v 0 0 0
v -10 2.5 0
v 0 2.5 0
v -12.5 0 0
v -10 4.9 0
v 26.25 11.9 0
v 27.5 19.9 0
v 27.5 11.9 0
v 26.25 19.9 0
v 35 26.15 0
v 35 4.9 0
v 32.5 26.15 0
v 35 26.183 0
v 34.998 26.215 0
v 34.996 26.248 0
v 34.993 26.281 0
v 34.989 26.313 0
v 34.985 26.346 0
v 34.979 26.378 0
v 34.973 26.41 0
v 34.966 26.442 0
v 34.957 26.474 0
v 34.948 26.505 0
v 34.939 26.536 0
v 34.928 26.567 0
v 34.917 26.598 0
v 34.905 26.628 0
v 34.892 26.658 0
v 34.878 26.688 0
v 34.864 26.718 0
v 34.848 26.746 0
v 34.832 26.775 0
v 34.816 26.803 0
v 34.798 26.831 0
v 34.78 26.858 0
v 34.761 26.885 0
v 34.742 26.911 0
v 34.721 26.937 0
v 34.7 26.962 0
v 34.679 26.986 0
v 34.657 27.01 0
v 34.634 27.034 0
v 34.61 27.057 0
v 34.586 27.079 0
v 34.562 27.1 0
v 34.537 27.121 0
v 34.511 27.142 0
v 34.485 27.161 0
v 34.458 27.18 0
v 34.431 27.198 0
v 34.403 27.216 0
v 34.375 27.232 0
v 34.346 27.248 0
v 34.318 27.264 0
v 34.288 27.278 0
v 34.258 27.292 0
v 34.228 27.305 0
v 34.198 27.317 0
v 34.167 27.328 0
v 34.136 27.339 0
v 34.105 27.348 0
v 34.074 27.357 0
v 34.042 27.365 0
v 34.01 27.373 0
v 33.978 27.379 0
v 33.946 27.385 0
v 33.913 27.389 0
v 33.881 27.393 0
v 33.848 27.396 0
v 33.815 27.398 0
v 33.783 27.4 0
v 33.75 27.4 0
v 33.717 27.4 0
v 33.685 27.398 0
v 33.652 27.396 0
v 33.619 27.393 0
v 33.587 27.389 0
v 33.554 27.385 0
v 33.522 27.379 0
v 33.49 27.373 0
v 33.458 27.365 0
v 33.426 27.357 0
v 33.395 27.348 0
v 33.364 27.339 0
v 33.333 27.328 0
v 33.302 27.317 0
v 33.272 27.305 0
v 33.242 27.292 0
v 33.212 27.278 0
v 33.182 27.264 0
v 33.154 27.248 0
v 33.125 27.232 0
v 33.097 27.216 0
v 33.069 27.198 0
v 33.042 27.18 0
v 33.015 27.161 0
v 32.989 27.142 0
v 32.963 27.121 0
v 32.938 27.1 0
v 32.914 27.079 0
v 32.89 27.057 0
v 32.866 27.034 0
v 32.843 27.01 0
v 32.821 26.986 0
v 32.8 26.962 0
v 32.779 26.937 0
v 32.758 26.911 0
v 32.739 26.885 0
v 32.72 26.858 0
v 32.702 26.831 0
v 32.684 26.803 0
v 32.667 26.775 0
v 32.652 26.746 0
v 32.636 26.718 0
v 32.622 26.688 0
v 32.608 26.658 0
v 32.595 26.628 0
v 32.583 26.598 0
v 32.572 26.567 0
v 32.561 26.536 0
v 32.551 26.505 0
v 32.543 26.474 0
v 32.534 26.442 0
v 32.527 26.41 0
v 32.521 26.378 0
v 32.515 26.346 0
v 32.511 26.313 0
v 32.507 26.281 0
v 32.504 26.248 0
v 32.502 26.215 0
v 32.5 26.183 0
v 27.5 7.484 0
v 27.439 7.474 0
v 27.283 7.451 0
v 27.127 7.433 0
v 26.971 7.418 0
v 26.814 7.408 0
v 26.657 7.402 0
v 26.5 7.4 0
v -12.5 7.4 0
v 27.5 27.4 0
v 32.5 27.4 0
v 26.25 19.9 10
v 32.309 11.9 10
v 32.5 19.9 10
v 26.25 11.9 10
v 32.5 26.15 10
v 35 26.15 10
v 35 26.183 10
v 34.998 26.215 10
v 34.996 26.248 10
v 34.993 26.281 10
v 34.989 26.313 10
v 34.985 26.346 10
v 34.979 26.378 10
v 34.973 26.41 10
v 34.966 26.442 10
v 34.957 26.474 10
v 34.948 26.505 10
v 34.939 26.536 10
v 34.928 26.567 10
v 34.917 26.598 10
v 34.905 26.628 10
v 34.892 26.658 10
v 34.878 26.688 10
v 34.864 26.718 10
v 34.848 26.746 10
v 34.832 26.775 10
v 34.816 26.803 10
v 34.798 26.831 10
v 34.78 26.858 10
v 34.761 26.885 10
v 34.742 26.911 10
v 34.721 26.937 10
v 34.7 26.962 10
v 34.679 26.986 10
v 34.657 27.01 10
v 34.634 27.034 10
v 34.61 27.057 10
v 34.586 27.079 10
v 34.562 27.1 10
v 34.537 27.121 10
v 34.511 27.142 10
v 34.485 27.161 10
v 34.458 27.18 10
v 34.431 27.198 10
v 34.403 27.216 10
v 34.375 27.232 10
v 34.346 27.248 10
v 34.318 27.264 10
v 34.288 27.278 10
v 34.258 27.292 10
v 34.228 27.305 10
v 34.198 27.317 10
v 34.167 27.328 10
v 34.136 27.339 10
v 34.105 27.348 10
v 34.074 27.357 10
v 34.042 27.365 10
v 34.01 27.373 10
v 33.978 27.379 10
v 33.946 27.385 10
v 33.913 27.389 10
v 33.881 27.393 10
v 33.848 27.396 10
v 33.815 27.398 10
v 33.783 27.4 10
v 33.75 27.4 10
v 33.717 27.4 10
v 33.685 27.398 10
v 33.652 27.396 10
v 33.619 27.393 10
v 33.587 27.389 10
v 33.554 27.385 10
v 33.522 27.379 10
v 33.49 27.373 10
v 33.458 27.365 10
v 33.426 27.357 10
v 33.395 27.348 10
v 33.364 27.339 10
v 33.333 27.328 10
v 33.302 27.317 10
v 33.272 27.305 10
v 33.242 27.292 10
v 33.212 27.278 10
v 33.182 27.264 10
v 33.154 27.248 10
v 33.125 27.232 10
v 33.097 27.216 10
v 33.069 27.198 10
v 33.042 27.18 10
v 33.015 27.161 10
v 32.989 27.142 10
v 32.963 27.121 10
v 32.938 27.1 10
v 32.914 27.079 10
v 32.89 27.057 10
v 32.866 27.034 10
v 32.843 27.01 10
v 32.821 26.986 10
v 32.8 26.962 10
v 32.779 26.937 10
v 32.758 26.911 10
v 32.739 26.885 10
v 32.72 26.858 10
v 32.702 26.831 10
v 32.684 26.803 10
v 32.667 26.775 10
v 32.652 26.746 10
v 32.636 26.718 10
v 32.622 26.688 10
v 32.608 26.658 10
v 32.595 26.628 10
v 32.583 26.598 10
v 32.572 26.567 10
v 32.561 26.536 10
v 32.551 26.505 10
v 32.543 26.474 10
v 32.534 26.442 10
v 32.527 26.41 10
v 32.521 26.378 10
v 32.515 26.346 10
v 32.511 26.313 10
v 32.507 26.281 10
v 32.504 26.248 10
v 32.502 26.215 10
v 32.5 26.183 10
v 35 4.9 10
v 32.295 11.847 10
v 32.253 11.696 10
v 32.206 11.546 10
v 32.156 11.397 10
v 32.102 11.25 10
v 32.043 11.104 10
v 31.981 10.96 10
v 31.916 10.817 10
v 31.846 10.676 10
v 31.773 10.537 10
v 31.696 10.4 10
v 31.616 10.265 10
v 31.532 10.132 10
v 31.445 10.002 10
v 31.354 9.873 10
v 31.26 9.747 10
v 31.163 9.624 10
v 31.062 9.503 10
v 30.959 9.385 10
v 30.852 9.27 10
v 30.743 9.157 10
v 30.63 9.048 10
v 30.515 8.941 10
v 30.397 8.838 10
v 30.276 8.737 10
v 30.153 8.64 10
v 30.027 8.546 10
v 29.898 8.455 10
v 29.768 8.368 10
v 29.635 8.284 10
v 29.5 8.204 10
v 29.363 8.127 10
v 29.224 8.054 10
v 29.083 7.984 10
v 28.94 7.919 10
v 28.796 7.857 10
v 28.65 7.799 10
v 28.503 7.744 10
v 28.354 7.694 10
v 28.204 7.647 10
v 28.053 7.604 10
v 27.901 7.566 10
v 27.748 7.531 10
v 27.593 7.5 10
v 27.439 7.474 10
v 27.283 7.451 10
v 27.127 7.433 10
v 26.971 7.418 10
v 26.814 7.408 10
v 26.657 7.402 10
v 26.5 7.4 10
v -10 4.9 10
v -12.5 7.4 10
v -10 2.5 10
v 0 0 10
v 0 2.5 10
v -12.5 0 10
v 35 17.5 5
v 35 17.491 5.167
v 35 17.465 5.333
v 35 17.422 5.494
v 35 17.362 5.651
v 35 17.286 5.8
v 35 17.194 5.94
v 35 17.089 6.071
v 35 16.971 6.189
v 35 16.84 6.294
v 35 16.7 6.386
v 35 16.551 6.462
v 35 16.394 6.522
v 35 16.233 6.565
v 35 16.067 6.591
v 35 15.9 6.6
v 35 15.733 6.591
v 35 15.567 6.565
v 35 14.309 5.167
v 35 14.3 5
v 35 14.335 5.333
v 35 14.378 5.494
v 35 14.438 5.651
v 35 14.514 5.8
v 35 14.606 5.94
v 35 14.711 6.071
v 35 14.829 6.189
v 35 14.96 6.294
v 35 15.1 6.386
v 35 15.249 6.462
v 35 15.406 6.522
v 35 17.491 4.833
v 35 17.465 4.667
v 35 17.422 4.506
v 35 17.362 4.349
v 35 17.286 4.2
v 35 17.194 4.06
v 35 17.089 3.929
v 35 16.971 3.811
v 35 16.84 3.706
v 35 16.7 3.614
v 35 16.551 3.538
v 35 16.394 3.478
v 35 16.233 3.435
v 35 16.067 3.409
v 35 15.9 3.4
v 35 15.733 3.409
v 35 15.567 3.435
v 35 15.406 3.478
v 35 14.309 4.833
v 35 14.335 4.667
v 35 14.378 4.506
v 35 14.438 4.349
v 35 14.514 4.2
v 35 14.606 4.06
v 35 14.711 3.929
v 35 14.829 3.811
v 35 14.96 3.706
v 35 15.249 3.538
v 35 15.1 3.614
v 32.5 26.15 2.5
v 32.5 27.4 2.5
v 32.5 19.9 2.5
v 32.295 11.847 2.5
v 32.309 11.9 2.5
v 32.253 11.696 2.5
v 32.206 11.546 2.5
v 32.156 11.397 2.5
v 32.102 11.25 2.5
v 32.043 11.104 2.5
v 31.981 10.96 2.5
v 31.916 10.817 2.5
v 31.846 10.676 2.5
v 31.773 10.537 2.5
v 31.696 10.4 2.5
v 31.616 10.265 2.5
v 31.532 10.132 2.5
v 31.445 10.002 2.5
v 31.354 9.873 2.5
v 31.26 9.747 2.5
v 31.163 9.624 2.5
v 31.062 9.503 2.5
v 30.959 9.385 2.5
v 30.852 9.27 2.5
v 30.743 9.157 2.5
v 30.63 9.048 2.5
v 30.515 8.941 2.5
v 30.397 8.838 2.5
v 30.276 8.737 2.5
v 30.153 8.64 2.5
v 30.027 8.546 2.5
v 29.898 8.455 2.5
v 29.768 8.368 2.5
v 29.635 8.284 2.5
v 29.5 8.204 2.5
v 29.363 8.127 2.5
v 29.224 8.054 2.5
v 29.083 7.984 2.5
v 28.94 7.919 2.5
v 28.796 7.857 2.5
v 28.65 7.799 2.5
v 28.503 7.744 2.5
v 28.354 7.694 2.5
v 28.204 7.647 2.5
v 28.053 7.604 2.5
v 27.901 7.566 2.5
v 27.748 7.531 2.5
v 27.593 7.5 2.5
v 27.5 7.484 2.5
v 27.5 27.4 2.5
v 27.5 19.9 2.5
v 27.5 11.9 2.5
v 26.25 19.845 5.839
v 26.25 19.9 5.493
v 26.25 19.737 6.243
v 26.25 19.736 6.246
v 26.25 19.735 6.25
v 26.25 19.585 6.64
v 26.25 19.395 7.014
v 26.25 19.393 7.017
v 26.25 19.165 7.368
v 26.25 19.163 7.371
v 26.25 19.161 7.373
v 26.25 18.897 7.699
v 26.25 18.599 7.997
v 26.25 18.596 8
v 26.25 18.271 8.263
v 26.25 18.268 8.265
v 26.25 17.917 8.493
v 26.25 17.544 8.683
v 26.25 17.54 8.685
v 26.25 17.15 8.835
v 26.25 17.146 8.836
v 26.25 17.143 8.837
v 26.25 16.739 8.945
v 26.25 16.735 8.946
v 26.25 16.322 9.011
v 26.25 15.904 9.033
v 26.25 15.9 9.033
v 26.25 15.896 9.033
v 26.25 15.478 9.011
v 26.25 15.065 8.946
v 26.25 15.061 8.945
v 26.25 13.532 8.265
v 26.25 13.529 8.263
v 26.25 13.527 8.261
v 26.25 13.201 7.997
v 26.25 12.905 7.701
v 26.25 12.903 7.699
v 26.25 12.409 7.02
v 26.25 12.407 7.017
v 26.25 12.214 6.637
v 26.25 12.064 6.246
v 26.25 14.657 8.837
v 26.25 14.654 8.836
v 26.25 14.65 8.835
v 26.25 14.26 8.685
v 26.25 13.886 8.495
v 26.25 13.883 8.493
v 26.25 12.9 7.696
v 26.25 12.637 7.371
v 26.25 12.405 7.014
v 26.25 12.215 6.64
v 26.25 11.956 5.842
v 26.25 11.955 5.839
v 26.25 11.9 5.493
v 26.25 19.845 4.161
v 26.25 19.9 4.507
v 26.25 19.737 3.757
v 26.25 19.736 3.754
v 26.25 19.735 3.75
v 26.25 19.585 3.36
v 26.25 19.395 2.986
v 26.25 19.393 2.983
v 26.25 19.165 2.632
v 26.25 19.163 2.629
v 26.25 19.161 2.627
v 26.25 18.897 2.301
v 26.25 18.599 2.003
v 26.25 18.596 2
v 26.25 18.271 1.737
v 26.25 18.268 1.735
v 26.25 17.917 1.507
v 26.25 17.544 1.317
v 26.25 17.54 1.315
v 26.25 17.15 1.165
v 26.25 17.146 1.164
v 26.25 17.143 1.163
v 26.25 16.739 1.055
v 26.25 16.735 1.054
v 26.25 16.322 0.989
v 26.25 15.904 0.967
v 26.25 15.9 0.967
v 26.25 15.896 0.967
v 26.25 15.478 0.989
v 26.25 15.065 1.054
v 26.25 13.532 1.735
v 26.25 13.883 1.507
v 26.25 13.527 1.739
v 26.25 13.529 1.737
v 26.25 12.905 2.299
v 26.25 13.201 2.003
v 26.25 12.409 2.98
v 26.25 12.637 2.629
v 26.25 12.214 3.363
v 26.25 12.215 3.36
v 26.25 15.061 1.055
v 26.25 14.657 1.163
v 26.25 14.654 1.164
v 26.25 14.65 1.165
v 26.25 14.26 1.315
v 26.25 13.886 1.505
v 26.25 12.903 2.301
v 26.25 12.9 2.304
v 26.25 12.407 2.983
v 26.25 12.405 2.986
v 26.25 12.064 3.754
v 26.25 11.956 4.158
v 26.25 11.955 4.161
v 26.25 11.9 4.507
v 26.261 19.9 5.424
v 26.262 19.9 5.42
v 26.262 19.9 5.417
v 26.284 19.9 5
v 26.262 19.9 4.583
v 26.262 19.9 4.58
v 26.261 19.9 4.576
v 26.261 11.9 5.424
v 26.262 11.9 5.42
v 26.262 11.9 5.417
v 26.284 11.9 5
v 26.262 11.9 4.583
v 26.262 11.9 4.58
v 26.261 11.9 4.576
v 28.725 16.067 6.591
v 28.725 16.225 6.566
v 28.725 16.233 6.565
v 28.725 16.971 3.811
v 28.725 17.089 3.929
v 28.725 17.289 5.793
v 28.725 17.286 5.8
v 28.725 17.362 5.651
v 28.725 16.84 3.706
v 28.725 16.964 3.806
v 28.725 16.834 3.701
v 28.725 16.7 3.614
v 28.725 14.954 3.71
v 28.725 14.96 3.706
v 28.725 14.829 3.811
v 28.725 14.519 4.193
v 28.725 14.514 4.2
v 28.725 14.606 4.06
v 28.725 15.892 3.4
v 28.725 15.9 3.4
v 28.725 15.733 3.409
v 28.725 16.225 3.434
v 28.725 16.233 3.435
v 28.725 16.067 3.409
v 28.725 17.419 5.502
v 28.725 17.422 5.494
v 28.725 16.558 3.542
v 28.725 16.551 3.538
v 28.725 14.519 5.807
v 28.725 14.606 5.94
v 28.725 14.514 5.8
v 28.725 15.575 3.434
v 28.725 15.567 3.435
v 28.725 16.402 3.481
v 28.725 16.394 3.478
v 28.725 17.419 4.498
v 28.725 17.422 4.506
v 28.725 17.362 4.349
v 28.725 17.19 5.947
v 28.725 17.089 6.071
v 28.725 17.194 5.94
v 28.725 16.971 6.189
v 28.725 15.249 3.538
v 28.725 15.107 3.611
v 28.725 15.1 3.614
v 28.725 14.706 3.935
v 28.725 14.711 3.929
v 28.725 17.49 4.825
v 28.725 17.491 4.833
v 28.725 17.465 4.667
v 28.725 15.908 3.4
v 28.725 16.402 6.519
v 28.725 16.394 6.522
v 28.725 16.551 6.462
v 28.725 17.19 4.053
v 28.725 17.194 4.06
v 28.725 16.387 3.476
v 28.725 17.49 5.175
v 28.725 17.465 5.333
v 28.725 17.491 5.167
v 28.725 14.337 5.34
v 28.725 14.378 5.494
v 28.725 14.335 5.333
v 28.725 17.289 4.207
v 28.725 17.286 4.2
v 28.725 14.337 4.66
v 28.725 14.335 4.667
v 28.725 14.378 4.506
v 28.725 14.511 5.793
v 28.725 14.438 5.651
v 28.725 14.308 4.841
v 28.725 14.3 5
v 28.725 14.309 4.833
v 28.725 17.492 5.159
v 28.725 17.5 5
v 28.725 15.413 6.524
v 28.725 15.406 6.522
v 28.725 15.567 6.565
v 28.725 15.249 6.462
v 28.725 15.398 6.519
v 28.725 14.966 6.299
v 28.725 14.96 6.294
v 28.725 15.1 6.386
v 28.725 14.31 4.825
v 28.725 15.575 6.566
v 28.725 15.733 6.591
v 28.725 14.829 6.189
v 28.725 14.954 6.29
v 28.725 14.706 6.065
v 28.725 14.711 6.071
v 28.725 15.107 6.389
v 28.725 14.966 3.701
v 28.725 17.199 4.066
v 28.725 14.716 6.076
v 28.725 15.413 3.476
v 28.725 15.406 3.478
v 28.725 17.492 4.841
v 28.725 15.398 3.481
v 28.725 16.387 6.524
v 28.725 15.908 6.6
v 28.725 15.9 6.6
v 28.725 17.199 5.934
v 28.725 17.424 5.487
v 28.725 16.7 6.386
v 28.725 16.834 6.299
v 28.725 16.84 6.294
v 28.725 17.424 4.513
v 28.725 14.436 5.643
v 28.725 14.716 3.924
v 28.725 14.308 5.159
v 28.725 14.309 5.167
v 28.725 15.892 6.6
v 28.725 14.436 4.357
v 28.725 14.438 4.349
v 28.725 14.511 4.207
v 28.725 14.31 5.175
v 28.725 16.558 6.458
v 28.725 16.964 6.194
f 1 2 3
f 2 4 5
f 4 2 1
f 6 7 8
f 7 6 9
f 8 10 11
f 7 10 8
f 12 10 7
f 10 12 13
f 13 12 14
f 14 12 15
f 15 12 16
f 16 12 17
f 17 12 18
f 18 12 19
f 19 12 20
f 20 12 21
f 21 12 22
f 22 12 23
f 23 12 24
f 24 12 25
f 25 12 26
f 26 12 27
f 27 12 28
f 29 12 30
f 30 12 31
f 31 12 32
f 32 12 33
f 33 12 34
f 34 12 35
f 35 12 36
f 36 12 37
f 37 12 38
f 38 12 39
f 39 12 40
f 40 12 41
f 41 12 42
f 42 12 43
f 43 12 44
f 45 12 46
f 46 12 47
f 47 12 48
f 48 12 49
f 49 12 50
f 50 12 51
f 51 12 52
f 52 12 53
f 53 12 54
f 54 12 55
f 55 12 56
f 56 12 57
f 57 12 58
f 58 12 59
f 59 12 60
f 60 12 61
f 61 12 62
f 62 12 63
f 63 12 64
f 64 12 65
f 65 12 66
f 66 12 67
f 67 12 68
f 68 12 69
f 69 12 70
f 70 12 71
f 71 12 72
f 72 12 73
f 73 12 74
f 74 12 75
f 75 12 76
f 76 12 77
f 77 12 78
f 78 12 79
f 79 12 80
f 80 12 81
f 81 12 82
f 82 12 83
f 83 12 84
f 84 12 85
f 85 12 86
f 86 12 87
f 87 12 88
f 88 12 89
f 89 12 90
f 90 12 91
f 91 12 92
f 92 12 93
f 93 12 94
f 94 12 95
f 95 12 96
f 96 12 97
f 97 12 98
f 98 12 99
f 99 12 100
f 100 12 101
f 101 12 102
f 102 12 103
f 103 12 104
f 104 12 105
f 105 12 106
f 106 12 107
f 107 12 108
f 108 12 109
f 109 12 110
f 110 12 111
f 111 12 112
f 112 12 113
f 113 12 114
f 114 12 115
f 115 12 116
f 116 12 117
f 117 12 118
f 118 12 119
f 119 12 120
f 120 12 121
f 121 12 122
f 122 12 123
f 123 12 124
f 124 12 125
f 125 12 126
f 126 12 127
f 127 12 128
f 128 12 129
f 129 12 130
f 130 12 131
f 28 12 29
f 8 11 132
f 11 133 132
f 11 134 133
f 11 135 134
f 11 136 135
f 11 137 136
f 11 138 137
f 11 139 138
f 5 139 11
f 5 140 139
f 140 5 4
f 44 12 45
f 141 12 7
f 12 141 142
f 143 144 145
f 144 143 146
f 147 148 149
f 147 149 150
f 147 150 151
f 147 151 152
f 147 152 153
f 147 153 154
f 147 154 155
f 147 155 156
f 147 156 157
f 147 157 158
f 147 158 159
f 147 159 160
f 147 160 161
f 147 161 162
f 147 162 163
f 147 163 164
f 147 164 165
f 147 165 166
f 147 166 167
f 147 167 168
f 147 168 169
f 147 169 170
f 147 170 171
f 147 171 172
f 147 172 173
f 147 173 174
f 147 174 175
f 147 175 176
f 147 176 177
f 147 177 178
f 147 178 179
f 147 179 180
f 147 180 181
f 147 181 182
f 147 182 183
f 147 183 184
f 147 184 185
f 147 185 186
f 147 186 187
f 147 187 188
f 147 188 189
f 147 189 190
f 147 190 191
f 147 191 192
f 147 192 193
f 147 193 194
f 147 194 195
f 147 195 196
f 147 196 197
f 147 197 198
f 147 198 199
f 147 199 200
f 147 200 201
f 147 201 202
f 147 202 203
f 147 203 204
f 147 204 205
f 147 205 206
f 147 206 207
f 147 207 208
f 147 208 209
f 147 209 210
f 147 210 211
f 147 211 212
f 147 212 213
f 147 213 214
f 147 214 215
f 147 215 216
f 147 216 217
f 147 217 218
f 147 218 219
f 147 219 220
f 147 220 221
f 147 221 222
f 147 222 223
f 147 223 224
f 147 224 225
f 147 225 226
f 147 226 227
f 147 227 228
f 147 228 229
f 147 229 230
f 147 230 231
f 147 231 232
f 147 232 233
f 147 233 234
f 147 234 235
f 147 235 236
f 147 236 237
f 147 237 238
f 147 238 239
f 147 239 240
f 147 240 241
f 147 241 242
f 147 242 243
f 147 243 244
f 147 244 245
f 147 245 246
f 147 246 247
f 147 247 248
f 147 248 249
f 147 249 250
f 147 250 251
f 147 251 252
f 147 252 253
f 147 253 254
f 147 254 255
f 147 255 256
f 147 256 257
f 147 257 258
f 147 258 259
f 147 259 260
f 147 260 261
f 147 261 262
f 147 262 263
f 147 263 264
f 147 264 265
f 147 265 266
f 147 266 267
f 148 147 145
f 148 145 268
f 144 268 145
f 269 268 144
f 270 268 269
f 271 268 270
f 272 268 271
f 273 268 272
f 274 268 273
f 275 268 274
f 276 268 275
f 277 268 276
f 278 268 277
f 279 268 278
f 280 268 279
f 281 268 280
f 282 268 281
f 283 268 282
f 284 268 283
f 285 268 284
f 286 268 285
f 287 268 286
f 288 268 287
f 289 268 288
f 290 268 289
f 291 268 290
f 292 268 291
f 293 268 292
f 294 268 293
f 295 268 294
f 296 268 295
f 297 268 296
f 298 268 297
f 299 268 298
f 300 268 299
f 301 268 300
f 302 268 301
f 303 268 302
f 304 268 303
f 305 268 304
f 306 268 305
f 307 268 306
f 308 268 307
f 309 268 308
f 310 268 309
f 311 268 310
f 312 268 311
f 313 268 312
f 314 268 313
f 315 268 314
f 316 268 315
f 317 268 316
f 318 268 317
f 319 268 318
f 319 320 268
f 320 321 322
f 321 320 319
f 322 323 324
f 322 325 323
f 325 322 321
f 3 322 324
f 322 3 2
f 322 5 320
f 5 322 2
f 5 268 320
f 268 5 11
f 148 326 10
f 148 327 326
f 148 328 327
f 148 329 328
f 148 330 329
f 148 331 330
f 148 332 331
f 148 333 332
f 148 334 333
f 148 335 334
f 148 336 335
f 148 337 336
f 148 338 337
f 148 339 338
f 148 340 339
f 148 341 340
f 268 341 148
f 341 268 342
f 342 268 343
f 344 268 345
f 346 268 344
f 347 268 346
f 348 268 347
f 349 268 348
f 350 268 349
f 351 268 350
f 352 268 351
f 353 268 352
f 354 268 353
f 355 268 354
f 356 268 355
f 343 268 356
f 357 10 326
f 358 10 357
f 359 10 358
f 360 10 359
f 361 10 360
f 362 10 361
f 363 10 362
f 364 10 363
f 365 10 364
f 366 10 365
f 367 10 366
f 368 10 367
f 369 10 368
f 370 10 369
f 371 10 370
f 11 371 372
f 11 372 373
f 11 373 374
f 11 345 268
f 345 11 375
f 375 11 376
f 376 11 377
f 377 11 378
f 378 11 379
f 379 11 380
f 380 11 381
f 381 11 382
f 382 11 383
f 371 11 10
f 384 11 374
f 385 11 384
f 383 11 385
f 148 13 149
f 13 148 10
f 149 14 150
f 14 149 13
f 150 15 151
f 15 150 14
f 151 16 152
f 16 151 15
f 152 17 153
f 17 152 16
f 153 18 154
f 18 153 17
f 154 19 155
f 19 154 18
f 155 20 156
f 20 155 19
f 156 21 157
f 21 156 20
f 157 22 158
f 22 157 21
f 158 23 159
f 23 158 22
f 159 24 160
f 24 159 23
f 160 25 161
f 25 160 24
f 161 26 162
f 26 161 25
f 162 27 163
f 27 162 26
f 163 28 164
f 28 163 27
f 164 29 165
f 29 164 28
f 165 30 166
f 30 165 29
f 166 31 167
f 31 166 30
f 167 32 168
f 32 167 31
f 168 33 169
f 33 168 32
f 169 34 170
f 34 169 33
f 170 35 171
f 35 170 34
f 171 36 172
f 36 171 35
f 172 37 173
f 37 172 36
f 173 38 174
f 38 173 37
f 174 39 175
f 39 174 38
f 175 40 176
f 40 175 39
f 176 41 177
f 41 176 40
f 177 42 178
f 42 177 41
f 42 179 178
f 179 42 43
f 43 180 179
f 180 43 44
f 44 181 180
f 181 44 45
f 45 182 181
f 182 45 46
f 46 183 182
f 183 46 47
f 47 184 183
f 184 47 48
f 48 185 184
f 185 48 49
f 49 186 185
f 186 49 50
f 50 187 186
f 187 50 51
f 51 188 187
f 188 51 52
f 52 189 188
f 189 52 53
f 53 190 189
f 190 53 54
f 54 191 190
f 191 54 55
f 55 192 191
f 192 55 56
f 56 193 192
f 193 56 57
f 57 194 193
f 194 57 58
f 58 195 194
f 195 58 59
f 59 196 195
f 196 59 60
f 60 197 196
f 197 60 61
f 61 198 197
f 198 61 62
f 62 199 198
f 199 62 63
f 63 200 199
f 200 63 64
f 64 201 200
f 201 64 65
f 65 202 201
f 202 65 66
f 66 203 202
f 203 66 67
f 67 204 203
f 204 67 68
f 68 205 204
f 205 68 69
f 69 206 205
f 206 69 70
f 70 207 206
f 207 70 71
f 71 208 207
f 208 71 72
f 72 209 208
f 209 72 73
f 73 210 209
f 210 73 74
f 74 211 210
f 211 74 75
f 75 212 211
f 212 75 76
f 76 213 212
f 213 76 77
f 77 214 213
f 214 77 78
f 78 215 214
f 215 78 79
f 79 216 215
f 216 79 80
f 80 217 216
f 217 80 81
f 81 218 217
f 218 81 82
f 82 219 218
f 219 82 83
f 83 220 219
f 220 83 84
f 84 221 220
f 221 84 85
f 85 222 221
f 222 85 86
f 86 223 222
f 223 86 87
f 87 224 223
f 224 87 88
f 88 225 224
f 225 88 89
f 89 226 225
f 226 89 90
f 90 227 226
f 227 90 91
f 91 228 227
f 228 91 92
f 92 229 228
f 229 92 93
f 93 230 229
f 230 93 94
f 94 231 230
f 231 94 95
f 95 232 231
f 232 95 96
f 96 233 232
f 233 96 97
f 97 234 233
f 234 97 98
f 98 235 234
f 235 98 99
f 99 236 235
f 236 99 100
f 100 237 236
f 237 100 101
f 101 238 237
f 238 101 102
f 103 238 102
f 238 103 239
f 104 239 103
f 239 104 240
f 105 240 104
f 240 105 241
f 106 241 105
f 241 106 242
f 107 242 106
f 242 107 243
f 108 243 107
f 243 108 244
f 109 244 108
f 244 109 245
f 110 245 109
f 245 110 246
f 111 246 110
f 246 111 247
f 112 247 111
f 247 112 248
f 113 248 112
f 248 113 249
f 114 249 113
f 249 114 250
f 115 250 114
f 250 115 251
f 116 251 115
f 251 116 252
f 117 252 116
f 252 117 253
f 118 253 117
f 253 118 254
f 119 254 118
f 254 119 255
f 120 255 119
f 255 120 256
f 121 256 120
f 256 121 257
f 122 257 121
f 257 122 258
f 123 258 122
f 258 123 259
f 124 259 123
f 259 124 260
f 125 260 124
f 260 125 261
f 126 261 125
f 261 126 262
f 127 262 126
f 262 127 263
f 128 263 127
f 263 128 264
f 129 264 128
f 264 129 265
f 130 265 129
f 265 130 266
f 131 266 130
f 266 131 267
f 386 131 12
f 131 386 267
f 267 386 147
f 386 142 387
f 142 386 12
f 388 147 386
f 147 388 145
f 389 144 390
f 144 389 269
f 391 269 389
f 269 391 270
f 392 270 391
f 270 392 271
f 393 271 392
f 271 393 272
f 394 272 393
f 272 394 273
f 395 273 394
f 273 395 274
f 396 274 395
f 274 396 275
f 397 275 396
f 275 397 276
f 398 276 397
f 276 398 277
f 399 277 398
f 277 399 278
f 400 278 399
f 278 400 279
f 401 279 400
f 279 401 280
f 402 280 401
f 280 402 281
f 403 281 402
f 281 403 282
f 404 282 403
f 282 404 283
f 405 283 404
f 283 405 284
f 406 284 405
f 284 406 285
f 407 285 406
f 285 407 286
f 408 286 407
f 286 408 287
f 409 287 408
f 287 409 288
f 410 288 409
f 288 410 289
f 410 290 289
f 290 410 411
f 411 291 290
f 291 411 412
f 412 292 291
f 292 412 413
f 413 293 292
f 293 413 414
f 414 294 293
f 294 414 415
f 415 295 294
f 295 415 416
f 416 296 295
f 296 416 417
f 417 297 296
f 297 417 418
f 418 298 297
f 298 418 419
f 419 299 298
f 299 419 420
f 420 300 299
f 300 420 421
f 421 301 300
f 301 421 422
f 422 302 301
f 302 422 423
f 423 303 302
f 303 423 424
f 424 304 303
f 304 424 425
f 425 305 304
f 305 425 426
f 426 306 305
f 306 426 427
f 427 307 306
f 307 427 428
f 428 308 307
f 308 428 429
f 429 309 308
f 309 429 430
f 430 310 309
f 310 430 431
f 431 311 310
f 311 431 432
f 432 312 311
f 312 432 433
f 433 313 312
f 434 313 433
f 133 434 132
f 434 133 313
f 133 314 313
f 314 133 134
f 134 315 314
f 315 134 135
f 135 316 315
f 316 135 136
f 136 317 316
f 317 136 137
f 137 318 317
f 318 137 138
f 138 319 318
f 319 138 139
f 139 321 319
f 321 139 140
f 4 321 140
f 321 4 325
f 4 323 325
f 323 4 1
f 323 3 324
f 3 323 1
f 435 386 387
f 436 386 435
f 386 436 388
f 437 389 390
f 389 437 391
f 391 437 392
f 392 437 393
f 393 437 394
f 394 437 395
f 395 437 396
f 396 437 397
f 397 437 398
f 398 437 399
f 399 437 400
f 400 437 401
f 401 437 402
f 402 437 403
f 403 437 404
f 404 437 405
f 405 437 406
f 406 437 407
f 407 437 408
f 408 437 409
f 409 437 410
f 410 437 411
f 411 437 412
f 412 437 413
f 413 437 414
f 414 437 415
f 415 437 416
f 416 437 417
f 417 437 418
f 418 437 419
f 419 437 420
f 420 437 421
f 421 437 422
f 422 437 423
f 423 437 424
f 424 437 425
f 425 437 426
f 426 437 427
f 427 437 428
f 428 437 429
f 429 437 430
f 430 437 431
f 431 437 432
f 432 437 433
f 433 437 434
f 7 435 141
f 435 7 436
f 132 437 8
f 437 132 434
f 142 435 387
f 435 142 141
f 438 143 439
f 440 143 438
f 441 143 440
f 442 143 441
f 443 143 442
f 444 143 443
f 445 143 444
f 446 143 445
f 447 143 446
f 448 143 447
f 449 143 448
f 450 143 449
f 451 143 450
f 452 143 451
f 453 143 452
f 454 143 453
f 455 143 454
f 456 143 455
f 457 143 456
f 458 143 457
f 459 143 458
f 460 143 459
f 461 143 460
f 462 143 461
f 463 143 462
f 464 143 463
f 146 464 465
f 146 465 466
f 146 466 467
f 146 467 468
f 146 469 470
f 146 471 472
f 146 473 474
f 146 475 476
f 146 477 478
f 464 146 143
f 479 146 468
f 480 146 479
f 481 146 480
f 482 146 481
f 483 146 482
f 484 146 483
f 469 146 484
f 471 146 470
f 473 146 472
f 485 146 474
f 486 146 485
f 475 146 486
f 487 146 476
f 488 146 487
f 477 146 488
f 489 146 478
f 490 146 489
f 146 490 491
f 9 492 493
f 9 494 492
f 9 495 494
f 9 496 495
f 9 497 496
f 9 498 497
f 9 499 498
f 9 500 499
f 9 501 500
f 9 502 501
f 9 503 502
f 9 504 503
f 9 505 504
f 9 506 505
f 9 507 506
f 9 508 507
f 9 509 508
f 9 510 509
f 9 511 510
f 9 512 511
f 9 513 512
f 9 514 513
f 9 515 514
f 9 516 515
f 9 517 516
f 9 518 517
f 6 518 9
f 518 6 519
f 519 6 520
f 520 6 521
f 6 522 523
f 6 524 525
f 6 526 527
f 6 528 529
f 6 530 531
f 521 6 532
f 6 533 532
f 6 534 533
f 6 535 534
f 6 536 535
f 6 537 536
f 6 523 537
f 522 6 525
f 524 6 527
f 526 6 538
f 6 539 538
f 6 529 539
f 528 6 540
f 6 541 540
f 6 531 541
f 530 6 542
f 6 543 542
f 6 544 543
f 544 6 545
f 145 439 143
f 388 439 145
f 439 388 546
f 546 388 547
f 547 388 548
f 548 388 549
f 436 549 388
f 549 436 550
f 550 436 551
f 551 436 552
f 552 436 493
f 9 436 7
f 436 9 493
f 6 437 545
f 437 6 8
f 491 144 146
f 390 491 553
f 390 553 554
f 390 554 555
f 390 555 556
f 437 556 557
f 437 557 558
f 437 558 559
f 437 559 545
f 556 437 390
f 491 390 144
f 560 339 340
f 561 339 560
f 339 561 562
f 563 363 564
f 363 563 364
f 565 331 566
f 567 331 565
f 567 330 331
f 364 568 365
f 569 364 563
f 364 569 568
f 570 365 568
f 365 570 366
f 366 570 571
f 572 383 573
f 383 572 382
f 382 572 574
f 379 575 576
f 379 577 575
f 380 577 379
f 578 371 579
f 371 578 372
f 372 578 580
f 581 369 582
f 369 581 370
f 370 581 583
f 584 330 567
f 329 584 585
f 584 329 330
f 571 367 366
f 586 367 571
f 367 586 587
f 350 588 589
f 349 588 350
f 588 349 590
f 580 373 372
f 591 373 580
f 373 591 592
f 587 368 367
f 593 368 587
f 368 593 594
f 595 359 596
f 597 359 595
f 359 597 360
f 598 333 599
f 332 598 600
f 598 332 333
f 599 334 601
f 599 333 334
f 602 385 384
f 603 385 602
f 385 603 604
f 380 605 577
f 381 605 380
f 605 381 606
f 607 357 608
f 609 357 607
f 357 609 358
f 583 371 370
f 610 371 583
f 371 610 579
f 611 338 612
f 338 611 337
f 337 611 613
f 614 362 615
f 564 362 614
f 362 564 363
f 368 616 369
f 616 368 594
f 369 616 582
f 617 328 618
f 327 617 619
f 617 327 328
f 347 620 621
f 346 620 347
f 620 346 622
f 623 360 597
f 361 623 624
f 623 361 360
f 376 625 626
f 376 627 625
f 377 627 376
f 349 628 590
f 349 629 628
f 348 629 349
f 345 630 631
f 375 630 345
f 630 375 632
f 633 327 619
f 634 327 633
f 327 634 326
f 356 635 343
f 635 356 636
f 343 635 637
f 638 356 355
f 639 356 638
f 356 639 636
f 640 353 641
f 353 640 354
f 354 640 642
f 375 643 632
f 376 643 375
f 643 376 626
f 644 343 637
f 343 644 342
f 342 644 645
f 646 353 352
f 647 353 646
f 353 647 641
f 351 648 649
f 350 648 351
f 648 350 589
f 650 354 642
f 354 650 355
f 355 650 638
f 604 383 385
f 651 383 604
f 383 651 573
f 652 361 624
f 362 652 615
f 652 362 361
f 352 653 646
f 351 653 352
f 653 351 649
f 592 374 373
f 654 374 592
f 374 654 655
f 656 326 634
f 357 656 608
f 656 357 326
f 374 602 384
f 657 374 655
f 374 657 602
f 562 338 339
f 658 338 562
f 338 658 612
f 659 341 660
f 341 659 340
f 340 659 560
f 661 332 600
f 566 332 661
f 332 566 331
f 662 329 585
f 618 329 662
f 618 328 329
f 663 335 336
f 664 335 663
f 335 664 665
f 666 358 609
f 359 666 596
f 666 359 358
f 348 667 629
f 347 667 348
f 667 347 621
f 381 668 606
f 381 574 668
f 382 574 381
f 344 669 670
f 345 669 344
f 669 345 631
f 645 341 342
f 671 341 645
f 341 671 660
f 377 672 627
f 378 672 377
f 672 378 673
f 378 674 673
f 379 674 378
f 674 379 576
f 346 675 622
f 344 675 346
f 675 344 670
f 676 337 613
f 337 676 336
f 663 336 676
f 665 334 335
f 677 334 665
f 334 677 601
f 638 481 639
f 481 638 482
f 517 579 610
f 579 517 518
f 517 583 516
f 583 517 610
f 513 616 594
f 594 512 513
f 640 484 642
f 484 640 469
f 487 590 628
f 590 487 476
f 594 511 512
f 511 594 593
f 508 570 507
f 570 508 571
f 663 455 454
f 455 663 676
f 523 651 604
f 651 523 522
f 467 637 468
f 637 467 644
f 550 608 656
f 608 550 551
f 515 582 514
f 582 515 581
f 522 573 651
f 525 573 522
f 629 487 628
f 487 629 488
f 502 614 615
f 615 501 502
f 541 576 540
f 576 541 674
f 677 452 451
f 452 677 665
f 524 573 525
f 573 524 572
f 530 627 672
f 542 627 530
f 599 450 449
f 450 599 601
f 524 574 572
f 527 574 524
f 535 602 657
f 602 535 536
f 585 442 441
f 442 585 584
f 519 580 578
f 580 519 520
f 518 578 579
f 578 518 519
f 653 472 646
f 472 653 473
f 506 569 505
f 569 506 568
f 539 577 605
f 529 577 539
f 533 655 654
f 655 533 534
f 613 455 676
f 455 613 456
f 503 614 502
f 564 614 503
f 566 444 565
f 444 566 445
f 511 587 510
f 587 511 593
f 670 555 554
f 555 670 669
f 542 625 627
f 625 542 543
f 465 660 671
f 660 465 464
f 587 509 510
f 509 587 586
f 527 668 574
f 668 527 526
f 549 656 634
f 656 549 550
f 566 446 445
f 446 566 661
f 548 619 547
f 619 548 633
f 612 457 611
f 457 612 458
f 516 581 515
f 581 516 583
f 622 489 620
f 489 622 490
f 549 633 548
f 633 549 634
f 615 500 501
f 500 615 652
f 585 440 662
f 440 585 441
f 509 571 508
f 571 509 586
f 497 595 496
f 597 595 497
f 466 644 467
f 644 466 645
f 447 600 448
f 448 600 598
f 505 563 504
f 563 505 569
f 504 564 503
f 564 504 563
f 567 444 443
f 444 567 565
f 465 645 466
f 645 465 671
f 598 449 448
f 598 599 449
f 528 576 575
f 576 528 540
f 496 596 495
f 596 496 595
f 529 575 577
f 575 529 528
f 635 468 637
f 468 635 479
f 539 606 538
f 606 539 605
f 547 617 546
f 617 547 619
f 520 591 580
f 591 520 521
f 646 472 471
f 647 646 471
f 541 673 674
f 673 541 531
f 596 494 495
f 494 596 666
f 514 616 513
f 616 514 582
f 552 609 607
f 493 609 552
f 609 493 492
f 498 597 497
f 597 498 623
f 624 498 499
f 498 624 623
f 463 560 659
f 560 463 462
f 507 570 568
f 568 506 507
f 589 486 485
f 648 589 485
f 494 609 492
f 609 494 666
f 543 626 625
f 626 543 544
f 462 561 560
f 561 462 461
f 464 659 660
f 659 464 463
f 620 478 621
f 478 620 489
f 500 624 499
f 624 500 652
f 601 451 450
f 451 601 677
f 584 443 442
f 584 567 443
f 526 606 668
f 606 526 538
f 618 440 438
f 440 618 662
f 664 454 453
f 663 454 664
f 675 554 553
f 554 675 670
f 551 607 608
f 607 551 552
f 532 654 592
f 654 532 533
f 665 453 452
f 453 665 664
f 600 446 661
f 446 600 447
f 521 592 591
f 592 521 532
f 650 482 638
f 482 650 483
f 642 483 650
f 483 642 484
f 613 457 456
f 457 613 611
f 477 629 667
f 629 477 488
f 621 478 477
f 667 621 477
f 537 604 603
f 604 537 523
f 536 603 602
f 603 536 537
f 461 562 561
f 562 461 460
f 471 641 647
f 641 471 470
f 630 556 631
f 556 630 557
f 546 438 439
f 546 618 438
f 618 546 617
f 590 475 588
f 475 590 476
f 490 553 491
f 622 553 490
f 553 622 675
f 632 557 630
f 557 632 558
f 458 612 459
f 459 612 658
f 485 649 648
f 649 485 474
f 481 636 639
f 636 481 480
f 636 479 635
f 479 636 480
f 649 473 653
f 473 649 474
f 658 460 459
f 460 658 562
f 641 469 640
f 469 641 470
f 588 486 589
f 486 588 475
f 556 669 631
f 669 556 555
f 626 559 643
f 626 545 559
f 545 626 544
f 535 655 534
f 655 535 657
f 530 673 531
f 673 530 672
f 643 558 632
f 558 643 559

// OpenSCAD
include <Round-Anything/polyround.scad>

$fn=60;
MAIN_TN=2.5;
BRD_WD=90;
BRD_TN=2.4;
PYLON_HT=20;
CLAMP_LN=10;
FILLET=6;
LED_FOOT_WD=20;
FLAT_WD=10;

pylon_points = [
    [0,0,0],
    [-CLAMP_LN-MAIN_TN, 0,0],
    [-CLAMP_LN-MAIN_TN, BRD_TN+(2*MAIN_TN), 0],
    [(BRD_WD/2)-CLAMP_LN-MAIN_TN, BRD_TN+(2*MAIN_TN), FILLET],
    [(BRD_WD/2)-CLAMP_LN-MAIN_TN, BRD_TN+(2*MAIN_TN)+PYLON_HT, FILLET],
    // [(BRD_WD/2)-CLAMP_LN-MAIN_TN-(LED_FOOT_WD/2), BRD_TN+(2*MAIN_TN)+PYLON_HT,0],
    // [(BRD_WD/2)-CLAMP_LN-MAIN_TN-(LED_FOOT_WD/2), BRD_TN+(3*MAIN_TN)+PYLON_HT,0],
    // [(BRD_WD/2)-CLAMP_LN+(LED_FOOT_WD/2), BRD_TN+(3*MAIN_TN)+PYLON_HT,0],
    // [(BRD_WD/2)-CLAMP_LN+(LED_FOOT_WD/2), BRD_TN+(2*MAIN_TN)+PYLON_HT,0],
    [(BRD_WD/2)-CLAMP_LN, BRD_TN+(2*MAIN_TN)+PYLON_HT, FILLET],
    [(BRD_WD/2)-CLAMP_LN, BRD_TN+(MAIN_TN),0],
    [-CLAMP_LN, BRD_TN+MAIN_TN,0],
    [-CLAMP_LN,MAIN_TN,0],
    [0,MAIN_TN,0],
];


difference(){
    union(){
        linear_extrude(height=FLAT_WD){
            polygon(polyRound(pylon_points,$fn));
        }
        translate([(BRD_WD/2)-CLAMP_LN-(2*MAIN_TN),PYLON_HT/2+(2*MAIN_TN)+BRD_TN,MAIN_TN/2]){
            cube([2*MAIN_TN,PYLON_HT,MAIN_TN],center=true);
        }

        translate([(BRD_WD/2)-CLAMP_LN-(MAIN_TN*2), (3*MAIN_TN)+BRD_TN+FILLET, FLAT_WD/2]){
            cube([3*MAIN_TN,8,FLAT_WD],center=true);
        }
    }
    translate([(BRD_WD/2)-CLAMP_LN-(MAIN_TN*2),(3*MAIN_TN)+BRD_TN+FILLET,FLAT_WD/2]){
        rotate(90,[0,1,0]){
            cylinder(h=12,r=3.2/2,center=true);
        }
    }
    translate([(BRD_WD/2)-CLAMP_LN-(MAIN_TN*3.1),(3*MAIN_TN)+BRD_TN+FILLET,FLAT_WD/2]){
        rotate(90,[0,1,0]){
            cylinder(h=6,r1=6,r2=0.1,center=true);
        }
    }


}
